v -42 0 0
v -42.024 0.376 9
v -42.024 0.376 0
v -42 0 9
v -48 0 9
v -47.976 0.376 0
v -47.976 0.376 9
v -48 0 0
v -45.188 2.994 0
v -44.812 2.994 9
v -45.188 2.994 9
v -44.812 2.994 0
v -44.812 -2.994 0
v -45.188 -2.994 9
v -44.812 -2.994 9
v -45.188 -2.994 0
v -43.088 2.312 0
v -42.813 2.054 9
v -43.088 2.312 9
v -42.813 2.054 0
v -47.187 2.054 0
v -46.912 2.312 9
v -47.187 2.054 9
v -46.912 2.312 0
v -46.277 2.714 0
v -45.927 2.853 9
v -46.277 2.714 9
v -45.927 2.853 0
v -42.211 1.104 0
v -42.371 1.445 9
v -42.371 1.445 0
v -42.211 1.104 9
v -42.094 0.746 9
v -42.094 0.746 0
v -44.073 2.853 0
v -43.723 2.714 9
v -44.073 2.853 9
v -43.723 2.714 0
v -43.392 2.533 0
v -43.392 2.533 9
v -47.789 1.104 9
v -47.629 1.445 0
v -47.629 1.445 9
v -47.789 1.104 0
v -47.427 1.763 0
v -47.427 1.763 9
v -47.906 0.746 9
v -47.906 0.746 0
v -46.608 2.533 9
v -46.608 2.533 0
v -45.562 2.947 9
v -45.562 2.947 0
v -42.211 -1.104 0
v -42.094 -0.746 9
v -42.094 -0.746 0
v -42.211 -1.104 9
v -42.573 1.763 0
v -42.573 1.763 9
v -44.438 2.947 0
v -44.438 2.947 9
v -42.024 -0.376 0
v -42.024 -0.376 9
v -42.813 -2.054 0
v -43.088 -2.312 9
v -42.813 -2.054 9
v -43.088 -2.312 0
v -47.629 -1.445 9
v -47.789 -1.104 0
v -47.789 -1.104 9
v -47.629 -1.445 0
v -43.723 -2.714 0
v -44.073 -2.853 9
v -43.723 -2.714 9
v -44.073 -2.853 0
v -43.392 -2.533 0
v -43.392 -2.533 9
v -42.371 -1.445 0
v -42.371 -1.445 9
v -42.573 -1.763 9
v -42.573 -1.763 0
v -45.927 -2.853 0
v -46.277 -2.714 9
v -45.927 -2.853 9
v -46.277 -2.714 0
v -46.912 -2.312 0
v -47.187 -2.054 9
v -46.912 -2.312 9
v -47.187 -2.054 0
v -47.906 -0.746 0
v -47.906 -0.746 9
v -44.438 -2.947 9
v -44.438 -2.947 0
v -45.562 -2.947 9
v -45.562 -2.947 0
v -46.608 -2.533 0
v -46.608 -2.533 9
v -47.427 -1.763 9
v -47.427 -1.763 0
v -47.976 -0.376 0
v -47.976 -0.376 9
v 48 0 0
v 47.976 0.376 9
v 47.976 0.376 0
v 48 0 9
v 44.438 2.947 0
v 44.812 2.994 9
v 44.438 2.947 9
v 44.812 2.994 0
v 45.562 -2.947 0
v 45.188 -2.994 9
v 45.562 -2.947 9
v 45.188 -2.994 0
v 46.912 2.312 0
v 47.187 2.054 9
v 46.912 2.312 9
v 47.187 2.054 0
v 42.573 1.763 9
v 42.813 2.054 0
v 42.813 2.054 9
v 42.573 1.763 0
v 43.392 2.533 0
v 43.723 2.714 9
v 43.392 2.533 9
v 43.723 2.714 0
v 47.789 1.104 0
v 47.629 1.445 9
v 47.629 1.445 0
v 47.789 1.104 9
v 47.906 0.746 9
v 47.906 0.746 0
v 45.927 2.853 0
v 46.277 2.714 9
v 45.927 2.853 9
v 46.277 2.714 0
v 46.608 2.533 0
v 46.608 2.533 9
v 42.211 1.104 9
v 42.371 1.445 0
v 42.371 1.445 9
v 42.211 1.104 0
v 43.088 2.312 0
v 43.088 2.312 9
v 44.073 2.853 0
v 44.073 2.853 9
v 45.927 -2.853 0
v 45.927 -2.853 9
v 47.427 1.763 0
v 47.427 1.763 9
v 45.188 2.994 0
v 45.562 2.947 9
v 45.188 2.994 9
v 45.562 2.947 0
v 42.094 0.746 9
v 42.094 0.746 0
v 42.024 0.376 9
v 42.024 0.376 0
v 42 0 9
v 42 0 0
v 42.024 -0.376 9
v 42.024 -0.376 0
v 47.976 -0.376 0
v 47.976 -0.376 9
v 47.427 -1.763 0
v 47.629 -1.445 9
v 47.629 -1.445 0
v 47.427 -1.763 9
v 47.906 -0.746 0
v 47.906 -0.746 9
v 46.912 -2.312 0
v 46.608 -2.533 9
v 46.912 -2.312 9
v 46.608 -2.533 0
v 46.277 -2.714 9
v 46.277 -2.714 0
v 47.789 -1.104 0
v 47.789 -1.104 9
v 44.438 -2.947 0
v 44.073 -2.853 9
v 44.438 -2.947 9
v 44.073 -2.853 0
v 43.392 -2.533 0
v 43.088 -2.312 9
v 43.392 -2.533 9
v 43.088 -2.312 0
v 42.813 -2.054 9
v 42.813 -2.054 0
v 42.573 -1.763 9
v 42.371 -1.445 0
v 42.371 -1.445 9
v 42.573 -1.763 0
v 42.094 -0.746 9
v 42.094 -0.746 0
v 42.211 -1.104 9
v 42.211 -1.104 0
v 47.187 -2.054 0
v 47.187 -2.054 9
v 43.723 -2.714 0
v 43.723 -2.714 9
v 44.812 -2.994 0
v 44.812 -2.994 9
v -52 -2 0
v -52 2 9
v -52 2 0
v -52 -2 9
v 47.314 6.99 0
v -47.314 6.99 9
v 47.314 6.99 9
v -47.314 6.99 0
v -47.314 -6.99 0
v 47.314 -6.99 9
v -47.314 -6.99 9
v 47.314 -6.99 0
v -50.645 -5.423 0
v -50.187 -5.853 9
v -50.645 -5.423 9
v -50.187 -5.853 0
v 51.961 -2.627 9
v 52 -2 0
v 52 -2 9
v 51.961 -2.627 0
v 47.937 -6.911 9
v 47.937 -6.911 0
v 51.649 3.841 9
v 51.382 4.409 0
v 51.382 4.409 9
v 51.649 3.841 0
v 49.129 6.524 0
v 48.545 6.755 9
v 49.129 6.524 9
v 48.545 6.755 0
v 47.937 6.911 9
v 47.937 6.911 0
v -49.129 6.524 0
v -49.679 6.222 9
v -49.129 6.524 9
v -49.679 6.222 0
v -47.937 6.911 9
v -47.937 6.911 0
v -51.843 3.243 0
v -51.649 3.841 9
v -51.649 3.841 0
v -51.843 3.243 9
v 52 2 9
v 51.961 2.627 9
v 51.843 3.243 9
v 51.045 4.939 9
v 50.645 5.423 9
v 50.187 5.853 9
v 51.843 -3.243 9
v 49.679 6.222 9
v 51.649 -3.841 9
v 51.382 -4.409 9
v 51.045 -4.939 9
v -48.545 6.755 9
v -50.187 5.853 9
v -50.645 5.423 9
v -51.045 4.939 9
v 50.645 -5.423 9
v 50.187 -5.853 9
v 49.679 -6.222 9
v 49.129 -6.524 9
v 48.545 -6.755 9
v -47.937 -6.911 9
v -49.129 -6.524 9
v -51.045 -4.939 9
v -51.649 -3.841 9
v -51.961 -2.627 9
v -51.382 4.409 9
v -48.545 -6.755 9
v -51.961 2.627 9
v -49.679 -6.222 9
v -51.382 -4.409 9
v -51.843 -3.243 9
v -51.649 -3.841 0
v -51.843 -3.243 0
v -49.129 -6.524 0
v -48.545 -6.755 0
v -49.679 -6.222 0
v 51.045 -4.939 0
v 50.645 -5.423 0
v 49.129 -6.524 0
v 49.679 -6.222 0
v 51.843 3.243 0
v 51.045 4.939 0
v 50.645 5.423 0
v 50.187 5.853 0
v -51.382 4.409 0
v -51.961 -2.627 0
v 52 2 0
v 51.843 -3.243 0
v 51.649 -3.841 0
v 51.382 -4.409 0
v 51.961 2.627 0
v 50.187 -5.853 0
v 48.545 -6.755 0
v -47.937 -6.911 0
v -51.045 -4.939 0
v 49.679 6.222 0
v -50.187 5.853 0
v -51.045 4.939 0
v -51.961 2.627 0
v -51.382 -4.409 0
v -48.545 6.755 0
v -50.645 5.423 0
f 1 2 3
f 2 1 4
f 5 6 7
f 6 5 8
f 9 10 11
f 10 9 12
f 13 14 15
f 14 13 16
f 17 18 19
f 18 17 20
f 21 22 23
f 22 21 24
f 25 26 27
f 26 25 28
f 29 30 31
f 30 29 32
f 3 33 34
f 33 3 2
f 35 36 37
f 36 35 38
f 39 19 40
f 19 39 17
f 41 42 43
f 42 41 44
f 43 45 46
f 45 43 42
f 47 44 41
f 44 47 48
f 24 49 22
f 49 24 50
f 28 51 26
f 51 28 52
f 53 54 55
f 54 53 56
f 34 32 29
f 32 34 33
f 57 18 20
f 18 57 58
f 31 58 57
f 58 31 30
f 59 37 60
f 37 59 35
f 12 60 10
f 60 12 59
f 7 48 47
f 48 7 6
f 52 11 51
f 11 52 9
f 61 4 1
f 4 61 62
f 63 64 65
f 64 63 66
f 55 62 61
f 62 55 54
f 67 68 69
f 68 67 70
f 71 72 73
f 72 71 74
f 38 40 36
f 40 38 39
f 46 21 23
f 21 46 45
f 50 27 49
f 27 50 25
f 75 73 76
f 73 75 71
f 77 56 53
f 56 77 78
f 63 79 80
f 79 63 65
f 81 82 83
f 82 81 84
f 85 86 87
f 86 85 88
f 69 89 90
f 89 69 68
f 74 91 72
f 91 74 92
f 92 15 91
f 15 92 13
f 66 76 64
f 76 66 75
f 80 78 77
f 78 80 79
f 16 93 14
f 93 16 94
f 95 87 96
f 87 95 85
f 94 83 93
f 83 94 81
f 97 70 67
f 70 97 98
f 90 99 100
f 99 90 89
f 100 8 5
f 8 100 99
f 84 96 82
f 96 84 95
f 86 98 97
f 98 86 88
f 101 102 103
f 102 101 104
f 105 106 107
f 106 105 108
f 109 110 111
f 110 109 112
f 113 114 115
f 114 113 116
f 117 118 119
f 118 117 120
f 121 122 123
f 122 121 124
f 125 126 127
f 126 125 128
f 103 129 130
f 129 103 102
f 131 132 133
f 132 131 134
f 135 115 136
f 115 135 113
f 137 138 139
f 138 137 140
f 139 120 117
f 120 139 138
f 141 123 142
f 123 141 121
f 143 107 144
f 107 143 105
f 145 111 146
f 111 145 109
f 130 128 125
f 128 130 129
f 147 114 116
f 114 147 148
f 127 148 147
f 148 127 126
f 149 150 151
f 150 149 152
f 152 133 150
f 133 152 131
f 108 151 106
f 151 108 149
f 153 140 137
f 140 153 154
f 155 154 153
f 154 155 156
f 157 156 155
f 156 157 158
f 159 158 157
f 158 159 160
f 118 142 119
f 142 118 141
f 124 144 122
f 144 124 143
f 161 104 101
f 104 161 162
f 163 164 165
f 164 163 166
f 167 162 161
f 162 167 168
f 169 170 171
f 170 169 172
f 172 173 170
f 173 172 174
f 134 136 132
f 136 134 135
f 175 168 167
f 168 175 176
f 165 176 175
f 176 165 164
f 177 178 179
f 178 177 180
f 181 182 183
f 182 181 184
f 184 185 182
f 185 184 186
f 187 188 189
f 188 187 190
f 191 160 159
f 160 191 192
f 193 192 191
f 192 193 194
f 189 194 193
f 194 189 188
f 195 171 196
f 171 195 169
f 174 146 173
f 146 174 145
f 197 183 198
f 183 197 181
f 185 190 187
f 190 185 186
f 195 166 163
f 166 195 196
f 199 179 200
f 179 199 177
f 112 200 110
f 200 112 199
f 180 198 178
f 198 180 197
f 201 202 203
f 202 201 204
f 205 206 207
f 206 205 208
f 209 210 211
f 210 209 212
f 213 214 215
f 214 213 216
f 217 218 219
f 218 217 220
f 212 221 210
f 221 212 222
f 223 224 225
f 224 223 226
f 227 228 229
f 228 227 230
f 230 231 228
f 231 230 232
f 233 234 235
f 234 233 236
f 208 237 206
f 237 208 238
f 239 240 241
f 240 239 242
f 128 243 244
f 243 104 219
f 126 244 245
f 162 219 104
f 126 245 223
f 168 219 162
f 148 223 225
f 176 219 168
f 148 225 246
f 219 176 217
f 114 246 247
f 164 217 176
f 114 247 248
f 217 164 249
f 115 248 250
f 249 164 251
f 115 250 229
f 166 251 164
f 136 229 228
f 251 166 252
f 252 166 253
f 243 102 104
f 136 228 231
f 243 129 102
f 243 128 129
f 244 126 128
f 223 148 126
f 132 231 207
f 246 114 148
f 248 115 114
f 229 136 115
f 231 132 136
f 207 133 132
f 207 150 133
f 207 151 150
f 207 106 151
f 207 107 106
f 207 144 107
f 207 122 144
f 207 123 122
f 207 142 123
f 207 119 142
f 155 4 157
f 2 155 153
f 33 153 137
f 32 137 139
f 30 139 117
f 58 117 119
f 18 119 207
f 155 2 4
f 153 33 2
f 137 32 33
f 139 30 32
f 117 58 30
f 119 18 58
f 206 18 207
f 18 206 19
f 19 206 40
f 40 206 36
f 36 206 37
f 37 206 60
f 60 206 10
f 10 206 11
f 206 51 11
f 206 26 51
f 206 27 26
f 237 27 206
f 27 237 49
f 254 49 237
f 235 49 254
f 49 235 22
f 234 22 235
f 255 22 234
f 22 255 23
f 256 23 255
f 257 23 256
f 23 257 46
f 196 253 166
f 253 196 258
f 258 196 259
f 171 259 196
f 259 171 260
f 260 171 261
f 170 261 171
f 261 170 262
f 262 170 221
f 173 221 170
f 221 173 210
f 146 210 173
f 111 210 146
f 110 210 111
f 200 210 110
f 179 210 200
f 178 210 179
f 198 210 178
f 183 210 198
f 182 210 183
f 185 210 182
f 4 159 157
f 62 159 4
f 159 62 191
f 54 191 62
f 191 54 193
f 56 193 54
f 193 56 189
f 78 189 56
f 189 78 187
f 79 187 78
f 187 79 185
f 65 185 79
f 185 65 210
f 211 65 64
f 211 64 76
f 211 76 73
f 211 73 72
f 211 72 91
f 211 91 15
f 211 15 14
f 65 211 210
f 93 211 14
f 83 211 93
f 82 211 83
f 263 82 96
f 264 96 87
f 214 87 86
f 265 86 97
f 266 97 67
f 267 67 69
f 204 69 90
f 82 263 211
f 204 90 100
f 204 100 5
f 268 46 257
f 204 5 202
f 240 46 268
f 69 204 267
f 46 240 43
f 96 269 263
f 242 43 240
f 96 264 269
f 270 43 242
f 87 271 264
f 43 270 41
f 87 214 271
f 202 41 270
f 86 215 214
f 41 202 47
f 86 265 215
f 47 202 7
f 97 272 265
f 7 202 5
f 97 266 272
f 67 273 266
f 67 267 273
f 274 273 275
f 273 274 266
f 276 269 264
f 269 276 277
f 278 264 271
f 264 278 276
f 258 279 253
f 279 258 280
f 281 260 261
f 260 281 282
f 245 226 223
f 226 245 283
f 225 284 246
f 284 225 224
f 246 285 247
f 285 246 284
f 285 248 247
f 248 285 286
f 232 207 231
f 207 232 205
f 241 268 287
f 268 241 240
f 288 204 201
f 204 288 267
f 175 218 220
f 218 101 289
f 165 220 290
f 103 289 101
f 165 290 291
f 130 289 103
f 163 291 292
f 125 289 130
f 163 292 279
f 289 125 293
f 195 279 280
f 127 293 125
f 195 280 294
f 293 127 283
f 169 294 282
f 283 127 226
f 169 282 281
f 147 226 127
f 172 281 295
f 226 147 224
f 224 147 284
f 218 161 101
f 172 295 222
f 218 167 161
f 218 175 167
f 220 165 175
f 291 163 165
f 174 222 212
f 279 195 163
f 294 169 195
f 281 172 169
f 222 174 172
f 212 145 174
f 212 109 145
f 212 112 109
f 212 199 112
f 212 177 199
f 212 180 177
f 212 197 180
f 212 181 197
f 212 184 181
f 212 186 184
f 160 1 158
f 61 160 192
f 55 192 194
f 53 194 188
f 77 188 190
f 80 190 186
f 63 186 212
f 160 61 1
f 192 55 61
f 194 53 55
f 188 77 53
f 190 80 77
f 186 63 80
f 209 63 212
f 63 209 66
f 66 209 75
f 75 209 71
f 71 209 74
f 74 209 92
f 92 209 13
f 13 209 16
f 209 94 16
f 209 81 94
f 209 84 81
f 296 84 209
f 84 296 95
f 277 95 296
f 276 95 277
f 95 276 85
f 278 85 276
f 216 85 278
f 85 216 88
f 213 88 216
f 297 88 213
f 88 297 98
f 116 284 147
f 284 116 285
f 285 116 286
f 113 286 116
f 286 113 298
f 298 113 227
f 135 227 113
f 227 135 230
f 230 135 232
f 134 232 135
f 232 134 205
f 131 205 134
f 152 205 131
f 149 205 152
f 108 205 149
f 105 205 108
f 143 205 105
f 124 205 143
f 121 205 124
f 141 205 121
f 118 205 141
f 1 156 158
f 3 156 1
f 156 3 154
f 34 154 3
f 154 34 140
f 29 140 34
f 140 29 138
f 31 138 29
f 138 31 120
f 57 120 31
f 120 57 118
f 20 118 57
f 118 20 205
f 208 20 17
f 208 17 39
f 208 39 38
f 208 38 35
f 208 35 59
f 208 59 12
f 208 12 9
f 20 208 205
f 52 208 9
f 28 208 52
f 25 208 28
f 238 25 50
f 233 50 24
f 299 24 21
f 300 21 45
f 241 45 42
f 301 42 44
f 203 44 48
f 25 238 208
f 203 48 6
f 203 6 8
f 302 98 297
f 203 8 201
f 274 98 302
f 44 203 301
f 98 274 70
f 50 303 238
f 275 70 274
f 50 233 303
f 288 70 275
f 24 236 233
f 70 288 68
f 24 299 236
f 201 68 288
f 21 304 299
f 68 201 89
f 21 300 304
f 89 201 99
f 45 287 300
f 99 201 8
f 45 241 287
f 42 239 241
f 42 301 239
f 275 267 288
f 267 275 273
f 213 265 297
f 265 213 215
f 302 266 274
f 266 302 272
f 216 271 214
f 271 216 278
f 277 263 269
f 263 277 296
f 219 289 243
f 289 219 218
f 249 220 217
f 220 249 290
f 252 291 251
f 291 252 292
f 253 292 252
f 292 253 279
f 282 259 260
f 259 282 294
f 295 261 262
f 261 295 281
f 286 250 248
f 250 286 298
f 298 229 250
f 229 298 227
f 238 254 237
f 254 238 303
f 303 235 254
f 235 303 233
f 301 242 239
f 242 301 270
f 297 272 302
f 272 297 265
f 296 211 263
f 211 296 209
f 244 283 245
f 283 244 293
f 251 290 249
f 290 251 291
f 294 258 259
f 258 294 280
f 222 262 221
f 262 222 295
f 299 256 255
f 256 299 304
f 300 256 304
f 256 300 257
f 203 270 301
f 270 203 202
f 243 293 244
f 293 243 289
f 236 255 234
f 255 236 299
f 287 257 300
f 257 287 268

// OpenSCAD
$fn = 50;


difference() {
	union() {
		hull() {
			translate(v = [-47.0000000000, 2.0000000000, 0]) {
				cylinder(h = 9, r = 5);
			}
			translate(v = [47.0000000000, 2.0000000000, 0]) {
				cylinder(h = 9, r = 5);
			}
			translate(v = [-47.0000000000, -2.0000000000, 0]) {
				cylinder(h = 9, r = 5);
			}
			translate(v = [47.0000000000, -2.0000000000, 0]) {
				cylinder(h = 9, r = 5);
			}
		}
	}
	union() {
		translate(v = [-45.0000000000, 0.0000000000, -100.0000000000]) {
			cylinder(h = 200, r = 3.0000000000);
		}
		translate(v = [-45.0000000000, 0.0000000000, -100.0000000000]) {
			cylinder(h = 200, r = 3.0000000000);
		}
		translate(v = [45.0000000000, 0.0000000000, -100.0000000000]) {
			cylinder(h = 200, r = 3.0000000000);
		}
		translate(v = [45.0000000000, 0.0000000000, -100.0000000000]) {
			cylinder(h = 200, r = 3.0000000000);
		}
	}
}
